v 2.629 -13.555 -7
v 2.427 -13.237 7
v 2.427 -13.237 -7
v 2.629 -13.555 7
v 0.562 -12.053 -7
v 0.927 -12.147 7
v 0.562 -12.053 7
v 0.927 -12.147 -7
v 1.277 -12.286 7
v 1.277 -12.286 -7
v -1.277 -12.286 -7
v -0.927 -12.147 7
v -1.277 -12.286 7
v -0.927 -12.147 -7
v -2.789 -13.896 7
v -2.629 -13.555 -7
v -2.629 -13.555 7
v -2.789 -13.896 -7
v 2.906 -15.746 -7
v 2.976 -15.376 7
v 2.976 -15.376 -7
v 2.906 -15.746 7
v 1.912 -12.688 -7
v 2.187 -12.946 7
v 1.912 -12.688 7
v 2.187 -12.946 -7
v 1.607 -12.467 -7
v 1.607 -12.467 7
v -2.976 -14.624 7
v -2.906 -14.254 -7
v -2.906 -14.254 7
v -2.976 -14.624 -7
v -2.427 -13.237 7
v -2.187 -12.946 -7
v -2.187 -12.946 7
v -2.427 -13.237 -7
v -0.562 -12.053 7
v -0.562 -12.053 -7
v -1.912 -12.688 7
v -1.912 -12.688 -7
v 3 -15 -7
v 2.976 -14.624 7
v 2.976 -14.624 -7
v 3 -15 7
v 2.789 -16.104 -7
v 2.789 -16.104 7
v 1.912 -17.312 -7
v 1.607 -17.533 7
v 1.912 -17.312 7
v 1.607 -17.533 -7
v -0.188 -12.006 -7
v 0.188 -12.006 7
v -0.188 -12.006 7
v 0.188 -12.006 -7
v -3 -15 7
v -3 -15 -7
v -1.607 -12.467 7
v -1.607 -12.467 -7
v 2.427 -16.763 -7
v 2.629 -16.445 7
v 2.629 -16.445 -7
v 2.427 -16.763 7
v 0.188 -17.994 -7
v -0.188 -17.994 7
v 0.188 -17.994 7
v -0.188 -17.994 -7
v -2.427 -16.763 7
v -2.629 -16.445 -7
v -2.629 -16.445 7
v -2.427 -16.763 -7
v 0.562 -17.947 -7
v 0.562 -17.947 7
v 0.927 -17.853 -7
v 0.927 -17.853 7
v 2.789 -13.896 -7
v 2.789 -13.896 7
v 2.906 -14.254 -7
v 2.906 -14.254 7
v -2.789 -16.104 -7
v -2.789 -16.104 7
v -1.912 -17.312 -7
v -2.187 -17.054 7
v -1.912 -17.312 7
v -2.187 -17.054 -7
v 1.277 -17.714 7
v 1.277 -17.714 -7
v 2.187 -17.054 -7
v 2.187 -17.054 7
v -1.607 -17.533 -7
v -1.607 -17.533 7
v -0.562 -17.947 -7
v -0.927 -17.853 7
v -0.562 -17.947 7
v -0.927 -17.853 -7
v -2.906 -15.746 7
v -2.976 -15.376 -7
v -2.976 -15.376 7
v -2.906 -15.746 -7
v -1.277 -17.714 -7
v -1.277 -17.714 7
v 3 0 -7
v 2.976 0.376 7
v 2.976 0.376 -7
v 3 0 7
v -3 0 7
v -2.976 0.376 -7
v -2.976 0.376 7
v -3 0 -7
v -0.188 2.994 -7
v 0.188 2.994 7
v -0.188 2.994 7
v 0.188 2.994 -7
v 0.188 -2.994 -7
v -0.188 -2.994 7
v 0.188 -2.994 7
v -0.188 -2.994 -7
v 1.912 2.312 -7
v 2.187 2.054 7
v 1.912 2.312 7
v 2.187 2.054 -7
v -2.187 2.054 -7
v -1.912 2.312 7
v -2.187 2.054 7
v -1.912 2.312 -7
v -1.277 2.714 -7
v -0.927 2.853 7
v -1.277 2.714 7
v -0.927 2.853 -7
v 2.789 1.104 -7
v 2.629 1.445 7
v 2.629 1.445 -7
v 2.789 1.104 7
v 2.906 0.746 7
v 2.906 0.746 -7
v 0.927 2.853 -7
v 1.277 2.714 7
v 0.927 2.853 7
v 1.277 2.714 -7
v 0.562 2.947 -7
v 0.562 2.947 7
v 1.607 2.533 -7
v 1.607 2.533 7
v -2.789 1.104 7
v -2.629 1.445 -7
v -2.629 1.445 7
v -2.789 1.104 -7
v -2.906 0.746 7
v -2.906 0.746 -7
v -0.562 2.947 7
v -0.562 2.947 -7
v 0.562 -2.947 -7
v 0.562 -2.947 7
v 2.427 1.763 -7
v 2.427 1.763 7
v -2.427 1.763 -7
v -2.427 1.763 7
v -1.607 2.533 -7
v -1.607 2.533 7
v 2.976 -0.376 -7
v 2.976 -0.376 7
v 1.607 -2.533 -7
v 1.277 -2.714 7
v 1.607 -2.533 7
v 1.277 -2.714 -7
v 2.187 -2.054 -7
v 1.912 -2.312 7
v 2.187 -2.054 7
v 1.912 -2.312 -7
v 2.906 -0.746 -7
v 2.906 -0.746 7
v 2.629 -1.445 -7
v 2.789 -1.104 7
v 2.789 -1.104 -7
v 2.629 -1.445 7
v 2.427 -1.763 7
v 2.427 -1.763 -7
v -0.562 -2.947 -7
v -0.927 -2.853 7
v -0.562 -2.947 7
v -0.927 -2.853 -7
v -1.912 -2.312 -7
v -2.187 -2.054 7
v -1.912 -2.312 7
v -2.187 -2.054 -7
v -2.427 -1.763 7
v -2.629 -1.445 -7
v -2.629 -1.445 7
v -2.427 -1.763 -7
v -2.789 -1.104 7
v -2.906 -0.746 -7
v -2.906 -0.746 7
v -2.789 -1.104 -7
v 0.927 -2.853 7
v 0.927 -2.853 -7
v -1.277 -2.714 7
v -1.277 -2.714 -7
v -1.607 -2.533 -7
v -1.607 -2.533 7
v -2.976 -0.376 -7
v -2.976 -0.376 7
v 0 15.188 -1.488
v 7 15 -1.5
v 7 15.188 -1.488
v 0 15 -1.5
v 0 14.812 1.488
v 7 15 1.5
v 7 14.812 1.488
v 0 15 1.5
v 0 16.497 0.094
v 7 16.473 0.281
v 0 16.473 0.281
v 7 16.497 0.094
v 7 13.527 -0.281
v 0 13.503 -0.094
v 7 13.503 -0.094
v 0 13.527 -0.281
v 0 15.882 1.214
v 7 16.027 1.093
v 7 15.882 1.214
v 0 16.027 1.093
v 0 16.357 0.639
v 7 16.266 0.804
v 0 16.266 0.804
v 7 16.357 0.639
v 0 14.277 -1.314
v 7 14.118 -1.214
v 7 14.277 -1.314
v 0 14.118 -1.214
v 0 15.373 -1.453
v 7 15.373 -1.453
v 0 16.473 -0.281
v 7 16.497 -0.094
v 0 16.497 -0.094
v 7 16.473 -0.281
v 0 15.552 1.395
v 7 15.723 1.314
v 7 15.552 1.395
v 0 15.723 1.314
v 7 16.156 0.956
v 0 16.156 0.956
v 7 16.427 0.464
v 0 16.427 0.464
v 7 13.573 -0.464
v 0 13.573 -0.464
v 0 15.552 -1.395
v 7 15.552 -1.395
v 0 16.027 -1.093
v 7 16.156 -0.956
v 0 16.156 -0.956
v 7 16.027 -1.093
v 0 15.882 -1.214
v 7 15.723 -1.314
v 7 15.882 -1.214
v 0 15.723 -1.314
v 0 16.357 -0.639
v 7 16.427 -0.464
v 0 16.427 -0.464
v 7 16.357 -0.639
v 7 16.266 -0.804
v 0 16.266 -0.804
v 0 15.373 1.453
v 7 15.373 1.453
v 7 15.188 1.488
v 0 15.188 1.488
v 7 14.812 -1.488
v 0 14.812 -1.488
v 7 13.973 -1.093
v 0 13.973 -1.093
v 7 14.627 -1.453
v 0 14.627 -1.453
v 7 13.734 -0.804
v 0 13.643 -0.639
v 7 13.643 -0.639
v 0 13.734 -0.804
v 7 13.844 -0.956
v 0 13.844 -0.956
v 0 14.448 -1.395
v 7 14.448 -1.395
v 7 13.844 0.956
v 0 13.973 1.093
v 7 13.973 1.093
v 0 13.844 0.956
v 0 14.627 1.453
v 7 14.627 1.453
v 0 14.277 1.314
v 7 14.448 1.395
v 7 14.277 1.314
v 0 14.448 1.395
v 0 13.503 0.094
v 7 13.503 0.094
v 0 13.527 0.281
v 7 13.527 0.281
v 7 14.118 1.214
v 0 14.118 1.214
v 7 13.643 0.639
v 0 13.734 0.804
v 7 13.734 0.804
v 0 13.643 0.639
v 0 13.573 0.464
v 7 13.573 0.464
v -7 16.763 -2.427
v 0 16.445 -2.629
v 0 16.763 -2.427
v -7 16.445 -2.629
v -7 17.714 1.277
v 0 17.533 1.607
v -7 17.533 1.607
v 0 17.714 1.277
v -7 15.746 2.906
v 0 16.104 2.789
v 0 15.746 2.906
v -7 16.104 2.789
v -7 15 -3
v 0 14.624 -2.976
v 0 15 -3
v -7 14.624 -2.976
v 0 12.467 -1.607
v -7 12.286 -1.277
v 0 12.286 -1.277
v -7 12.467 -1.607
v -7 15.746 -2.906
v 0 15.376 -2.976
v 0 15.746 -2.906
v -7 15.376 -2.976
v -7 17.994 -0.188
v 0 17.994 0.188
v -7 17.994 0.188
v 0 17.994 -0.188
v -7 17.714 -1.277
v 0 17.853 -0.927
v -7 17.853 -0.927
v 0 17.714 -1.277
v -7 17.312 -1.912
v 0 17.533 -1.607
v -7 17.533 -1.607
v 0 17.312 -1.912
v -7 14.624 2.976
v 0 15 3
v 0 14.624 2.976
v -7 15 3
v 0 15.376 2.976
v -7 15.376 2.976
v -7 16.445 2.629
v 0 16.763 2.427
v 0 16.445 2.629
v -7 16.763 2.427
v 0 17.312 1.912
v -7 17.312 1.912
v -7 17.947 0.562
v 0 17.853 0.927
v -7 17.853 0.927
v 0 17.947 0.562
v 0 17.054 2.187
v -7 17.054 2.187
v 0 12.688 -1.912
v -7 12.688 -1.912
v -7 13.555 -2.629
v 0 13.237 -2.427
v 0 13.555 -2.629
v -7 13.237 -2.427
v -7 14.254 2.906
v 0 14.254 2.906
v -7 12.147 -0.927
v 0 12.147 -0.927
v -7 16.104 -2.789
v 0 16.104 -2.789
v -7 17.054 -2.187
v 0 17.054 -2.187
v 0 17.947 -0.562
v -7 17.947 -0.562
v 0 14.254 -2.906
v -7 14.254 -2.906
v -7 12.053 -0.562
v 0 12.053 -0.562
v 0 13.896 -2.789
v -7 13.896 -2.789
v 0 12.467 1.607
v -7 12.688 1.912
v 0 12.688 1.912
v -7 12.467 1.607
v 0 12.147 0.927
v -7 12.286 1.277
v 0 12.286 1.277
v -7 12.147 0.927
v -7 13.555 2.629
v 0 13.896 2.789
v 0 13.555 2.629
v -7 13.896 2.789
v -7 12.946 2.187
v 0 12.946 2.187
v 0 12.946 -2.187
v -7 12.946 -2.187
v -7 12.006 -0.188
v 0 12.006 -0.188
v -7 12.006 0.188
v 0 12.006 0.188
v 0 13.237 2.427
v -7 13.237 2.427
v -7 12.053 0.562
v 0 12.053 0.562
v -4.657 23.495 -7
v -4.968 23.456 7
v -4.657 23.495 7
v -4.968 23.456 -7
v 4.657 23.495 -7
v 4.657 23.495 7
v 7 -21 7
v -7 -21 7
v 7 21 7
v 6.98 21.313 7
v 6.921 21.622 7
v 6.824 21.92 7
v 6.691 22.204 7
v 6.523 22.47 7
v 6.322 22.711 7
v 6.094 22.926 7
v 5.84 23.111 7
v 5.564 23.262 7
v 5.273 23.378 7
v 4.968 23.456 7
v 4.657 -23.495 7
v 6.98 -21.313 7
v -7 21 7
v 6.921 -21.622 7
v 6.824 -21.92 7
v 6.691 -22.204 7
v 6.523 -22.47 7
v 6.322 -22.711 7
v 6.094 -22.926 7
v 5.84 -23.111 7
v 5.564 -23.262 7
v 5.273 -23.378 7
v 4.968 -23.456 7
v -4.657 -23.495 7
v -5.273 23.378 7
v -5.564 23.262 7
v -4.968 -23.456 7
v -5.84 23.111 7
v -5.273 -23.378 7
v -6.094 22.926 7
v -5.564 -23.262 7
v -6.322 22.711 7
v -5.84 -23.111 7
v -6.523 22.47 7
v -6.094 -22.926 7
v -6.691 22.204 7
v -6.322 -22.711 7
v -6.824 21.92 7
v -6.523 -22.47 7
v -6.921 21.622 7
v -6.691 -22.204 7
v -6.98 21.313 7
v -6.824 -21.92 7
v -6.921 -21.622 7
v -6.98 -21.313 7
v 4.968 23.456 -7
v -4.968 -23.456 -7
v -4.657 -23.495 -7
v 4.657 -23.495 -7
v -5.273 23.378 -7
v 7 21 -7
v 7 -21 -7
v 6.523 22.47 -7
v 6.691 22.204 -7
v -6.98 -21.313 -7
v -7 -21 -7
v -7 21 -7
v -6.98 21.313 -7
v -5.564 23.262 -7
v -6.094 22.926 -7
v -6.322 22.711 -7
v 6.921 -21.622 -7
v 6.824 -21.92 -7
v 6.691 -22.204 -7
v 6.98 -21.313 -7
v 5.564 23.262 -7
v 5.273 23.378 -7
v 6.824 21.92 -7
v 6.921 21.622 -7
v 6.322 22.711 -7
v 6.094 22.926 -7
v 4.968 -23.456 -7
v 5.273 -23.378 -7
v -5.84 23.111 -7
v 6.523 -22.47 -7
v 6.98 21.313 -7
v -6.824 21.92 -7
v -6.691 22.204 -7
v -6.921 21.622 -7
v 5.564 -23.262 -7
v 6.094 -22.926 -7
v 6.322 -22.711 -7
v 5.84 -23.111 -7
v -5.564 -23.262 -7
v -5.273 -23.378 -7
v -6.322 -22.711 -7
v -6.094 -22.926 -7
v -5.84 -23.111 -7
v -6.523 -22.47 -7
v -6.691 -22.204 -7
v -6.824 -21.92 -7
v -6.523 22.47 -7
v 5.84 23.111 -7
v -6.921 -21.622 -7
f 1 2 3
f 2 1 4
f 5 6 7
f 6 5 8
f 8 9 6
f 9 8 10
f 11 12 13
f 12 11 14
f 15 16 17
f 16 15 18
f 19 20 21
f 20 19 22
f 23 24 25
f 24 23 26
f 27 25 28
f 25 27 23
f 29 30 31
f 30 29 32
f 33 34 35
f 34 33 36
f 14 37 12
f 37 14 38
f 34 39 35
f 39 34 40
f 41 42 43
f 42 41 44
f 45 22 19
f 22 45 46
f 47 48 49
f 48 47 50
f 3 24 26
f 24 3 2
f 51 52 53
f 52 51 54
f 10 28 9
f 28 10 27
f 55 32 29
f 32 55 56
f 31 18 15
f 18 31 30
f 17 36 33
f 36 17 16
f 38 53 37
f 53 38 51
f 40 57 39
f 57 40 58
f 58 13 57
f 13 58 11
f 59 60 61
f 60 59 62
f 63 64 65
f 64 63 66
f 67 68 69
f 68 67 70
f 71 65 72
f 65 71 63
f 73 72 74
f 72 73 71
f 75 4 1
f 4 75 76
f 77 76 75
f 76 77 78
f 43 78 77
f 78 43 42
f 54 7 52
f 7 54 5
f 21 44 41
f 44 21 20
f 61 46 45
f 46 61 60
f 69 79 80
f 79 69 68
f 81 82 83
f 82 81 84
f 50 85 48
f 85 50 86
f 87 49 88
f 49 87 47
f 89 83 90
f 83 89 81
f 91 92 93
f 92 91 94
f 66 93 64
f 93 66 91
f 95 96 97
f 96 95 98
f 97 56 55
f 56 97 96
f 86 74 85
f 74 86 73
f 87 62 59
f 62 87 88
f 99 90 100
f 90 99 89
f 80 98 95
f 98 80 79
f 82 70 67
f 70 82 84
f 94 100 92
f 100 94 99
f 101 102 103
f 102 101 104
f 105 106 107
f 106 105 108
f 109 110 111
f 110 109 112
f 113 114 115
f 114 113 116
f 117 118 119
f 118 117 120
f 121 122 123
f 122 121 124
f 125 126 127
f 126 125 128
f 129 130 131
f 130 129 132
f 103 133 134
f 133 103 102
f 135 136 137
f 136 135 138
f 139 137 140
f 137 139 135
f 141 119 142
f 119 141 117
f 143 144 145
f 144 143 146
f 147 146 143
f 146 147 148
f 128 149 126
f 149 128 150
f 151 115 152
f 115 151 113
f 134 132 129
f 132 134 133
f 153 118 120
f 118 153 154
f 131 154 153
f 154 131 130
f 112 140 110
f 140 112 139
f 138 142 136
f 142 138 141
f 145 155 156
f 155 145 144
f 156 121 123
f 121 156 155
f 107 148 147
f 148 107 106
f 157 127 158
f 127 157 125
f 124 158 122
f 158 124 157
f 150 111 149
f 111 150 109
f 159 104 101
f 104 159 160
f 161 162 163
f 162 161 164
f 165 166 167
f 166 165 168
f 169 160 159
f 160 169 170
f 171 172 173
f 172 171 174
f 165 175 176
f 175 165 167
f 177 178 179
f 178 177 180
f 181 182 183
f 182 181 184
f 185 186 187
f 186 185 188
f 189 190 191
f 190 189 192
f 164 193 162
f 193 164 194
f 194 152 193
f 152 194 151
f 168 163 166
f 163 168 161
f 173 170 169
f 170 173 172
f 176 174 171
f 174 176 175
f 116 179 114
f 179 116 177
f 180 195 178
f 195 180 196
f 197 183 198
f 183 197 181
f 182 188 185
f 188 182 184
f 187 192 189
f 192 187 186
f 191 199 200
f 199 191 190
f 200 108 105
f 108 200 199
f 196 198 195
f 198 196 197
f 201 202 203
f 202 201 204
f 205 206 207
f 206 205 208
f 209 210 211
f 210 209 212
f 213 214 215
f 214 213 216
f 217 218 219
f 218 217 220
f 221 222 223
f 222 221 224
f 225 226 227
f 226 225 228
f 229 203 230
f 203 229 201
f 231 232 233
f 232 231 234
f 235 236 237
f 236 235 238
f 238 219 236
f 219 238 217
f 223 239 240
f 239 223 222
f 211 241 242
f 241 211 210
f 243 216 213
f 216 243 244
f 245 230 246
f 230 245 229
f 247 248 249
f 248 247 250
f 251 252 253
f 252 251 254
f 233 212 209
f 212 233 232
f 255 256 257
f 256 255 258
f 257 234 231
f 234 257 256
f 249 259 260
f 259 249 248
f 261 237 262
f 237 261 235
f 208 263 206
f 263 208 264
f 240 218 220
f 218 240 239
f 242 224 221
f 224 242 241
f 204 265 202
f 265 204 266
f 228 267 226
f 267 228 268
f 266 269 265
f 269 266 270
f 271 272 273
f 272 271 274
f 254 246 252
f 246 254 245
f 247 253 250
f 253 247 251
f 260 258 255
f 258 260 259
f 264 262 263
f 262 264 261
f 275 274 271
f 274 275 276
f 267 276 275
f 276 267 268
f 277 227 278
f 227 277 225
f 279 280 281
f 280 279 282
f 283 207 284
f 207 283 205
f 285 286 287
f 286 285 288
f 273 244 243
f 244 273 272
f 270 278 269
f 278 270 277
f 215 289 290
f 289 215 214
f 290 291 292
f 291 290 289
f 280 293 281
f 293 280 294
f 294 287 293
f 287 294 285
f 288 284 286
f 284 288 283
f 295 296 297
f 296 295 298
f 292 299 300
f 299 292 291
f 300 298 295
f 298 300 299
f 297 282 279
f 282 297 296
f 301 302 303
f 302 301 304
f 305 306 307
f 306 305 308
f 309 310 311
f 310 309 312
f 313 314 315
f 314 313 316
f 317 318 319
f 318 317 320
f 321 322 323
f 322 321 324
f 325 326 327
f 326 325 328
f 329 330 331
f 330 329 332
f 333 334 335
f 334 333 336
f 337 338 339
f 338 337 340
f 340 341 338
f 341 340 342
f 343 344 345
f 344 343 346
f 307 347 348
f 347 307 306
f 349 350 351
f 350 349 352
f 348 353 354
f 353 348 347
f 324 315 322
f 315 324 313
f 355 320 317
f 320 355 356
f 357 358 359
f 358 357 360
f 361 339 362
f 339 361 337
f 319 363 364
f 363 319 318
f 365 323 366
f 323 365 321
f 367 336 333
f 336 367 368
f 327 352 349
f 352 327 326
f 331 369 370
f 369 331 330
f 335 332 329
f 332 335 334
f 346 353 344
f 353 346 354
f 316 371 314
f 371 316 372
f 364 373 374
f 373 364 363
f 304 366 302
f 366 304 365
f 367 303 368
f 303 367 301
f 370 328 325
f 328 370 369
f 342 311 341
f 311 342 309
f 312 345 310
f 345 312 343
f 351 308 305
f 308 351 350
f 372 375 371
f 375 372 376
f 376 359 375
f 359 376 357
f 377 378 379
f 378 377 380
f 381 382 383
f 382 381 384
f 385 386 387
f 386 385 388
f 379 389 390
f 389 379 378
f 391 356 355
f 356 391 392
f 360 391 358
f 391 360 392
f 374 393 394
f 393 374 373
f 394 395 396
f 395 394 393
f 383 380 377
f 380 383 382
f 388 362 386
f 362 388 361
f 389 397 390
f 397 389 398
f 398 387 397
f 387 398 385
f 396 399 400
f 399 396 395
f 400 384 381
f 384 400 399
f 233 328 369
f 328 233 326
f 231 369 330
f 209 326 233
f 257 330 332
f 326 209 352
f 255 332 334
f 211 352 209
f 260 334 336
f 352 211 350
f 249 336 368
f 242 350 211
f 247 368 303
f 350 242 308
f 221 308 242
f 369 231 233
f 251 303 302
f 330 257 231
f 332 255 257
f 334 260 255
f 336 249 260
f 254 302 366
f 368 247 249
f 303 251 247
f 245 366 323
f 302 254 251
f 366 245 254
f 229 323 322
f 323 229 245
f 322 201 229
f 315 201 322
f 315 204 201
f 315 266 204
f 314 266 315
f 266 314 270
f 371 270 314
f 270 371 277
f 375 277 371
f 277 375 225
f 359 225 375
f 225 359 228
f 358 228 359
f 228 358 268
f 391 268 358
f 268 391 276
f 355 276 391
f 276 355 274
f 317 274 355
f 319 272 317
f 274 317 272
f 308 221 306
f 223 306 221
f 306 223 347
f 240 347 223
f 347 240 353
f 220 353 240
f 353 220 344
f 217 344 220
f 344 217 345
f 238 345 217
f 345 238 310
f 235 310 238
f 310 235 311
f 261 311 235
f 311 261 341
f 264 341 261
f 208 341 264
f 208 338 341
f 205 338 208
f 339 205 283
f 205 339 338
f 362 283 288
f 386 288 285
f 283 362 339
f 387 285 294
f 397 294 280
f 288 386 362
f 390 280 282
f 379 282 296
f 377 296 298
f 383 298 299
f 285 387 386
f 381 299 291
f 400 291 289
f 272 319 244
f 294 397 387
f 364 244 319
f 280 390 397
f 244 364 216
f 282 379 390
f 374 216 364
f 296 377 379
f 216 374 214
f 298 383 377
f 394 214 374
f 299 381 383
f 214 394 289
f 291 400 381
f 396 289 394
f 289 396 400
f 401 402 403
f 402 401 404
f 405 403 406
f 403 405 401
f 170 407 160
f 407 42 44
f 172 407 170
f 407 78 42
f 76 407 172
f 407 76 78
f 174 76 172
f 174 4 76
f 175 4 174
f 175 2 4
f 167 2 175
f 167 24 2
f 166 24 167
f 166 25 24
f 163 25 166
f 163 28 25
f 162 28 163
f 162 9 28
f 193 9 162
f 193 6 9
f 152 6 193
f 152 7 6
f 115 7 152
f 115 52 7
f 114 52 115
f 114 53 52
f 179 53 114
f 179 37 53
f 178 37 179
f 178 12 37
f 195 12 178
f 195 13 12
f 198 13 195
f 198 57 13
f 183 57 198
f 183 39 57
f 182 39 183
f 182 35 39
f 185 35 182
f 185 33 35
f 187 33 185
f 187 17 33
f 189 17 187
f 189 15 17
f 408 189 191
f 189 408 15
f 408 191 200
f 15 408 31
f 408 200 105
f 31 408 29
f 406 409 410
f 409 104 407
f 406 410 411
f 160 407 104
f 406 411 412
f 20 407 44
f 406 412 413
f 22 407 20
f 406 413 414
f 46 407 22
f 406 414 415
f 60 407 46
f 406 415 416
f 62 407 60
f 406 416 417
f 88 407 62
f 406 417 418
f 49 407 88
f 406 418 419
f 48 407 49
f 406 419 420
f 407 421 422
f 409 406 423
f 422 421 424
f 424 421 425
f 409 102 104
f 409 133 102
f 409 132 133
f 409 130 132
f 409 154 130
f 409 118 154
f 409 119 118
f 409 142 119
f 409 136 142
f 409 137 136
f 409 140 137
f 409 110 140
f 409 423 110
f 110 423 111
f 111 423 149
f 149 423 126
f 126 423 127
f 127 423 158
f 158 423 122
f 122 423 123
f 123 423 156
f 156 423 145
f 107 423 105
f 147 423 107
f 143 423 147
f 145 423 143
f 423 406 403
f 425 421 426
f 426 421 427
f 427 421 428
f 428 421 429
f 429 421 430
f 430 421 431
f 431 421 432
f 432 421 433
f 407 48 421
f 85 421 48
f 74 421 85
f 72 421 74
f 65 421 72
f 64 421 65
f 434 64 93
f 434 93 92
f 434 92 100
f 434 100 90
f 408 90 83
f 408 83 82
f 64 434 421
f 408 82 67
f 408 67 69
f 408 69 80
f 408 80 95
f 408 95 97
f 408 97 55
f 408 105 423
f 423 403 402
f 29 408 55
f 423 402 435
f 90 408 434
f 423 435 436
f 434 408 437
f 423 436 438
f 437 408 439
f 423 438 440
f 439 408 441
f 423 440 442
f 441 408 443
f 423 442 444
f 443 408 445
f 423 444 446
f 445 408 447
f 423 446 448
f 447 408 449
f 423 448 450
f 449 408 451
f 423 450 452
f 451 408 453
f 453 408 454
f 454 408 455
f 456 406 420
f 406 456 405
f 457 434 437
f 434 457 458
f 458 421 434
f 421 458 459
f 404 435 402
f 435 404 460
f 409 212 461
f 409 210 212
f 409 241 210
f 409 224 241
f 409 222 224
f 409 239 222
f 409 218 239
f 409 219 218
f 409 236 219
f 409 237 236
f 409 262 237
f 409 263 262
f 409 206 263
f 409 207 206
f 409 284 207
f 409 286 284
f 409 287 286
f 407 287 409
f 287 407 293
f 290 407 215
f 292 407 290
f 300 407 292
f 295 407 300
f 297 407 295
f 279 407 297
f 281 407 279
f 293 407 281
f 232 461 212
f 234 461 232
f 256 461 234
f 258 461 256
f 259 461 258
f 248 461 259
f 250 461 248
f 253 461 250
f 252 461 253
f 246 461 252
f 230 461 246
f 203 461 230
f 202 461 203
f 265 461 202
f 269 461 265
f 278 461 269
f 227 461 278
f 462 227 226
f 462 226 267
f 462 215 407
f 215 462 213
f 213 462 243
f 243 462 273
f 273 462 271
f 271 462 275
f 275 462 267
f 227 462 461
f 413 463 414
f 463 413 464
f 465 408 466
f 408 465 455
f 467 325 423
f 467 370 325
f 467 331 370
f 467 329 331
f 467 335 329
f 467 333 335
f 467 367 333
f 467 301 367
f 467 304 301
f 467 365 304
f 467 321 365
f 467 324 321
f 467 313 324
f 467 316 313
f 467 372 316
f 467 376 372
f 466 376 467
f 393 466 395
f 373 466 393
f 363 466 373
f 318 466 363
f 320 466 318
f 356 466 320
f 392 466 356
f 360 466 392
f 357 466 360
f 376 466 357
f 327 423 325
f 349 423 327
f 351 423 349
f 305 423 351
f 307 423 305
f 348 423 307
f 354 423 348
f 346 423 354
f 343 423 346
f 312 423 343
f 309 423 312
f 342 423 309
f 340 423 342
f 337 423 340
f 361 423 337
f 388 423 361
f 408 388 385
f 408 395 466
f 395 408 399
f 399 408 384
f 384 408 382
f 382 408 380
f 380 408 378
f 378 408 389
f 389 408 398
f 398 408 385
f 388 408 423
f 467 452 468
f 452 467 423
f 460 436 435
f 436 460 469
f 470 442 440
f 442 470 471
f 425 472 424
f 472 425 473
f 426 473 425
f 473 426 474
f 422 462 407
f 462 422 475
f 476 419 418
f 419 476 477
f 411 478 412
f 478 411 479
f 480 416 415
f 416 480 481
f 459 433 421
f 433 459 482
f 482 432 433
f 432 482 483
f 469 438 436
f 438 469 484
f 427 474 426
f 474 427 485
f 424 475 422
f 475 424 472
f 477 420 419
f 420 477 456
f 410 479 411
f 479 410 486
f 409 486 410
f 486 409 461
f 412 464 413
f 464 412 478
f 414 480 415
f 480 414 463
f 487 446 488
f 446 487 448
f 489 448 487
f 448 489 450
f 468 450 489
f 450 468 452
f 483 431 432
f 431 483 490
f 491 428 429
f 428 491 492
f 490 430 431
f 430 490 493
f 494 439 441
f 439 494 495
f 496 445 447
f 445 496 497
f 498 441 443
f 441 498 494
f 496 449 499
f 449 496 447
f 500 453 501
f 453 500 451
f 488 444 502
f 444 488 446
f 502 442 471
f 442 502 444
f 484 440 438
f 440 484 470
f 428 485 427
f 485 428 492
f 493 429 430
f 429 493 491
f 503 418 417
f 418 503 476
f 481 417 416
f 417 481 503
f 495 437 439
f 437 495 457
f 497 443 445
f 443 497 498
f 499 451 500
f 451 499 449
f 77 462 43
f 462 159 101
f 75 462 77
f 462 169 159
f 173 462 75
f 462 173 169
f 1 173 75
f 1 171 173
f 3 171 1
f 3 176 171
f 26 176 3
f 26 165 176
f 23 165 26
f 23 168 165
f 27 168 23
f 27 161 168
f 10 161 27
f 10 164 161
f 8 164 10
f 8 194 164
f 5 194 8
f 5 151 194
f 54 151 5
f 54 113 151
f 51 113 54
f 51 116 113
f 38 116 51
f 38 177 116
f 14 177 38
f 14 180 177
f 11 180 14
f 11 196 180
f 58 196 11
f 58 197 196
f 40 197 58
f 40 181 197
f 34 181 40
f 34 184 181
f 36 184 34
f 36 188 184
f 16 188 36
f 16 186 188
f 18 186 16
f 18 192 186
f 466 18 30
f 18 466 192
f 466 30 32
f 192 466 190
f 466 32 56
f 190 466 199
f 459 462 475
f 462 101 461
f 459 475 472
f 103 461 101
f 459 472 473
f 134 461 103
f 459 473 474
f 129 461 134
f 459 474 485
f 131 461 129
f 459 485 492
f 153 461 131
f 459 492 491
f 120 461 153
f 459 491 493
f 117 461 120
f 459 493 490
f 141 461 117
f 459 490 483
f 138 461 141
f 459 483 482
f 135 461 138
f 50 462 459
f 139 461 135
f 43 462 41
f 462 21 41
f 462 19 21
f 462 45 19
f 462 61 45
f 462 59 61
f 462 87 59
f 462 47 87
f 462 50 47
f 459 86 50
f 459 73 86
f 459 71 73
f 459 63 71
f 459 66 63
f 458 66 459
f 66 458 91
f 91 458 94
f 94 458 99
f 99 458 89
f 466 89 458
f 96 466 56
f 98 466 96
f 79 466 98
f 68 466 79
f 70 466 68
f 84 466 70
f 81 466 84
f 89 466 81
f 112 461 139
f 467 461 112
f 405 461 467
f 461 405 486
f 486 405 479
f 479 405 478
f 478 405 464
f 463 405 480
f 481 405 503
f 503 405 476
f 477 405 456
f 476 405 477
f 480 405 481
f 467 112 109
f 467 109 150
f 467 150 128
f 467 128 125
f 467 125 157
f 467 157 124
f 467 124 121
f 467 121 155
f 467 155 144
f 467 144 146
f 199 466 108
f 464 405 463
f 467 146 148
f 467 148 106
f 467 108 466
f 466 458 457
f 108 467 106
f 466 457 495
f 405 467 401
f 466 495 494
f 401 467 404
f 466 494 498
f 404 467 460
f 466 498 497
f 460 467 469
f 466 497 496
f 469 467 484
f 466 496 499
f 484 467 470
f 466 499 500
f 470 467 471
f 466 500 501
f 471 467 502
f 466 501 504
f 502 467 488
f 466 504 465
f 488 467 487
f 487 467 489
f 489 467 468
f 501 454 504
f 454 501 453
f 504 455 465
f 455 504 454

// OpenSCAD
$fn = 50;


difference() {
	union() {
		translate(v = [0, 0, -7.0000000000]) {
			hull() {
				translate(v = [-4.5000000000, 21.0000000000, 0]) {
					cylinder(h = 14, r = 2.5000000000);
				}
				translate(v = [4.5000000000, 21.0000000000, 0]) {
					cylinder(h = 14, r = 2.5000000000);
				}
				translate(v = [-4.5000000000, -21.0000000000, 0]) {
					cylinder(h = 14, r = 2.5000000000);
				}
				translate(v = [4.5000000000, -21.0000000000, 0]) {
					cylinder(h = 14, r = 2.5000000000);
				}
			}
		}
	}
	union() {
		translate(v = [0.0000000000, -15.0000000000, -100.0000000000]) {
			cylinder(h = 200, r = 3.0000000000);
		}
		translate(v = [0.0000000000, 0.0000000000, -100.0000000000]) {
			cylinder(h = 200, r = 3.0000000000);
		}
		translate(v = [-50, 15, 0]) {
			rotate(a = [0, 90, 0]) {
				cylinder(h = 100, r = 1.5000000000);
			}
		}
		translate(v = [-100, 15, 0]) {
			rotate(a = [0, 90, 0]) {
				cylinder(h = 100, r = 3.0000000000);
			}
		}
	}
}
